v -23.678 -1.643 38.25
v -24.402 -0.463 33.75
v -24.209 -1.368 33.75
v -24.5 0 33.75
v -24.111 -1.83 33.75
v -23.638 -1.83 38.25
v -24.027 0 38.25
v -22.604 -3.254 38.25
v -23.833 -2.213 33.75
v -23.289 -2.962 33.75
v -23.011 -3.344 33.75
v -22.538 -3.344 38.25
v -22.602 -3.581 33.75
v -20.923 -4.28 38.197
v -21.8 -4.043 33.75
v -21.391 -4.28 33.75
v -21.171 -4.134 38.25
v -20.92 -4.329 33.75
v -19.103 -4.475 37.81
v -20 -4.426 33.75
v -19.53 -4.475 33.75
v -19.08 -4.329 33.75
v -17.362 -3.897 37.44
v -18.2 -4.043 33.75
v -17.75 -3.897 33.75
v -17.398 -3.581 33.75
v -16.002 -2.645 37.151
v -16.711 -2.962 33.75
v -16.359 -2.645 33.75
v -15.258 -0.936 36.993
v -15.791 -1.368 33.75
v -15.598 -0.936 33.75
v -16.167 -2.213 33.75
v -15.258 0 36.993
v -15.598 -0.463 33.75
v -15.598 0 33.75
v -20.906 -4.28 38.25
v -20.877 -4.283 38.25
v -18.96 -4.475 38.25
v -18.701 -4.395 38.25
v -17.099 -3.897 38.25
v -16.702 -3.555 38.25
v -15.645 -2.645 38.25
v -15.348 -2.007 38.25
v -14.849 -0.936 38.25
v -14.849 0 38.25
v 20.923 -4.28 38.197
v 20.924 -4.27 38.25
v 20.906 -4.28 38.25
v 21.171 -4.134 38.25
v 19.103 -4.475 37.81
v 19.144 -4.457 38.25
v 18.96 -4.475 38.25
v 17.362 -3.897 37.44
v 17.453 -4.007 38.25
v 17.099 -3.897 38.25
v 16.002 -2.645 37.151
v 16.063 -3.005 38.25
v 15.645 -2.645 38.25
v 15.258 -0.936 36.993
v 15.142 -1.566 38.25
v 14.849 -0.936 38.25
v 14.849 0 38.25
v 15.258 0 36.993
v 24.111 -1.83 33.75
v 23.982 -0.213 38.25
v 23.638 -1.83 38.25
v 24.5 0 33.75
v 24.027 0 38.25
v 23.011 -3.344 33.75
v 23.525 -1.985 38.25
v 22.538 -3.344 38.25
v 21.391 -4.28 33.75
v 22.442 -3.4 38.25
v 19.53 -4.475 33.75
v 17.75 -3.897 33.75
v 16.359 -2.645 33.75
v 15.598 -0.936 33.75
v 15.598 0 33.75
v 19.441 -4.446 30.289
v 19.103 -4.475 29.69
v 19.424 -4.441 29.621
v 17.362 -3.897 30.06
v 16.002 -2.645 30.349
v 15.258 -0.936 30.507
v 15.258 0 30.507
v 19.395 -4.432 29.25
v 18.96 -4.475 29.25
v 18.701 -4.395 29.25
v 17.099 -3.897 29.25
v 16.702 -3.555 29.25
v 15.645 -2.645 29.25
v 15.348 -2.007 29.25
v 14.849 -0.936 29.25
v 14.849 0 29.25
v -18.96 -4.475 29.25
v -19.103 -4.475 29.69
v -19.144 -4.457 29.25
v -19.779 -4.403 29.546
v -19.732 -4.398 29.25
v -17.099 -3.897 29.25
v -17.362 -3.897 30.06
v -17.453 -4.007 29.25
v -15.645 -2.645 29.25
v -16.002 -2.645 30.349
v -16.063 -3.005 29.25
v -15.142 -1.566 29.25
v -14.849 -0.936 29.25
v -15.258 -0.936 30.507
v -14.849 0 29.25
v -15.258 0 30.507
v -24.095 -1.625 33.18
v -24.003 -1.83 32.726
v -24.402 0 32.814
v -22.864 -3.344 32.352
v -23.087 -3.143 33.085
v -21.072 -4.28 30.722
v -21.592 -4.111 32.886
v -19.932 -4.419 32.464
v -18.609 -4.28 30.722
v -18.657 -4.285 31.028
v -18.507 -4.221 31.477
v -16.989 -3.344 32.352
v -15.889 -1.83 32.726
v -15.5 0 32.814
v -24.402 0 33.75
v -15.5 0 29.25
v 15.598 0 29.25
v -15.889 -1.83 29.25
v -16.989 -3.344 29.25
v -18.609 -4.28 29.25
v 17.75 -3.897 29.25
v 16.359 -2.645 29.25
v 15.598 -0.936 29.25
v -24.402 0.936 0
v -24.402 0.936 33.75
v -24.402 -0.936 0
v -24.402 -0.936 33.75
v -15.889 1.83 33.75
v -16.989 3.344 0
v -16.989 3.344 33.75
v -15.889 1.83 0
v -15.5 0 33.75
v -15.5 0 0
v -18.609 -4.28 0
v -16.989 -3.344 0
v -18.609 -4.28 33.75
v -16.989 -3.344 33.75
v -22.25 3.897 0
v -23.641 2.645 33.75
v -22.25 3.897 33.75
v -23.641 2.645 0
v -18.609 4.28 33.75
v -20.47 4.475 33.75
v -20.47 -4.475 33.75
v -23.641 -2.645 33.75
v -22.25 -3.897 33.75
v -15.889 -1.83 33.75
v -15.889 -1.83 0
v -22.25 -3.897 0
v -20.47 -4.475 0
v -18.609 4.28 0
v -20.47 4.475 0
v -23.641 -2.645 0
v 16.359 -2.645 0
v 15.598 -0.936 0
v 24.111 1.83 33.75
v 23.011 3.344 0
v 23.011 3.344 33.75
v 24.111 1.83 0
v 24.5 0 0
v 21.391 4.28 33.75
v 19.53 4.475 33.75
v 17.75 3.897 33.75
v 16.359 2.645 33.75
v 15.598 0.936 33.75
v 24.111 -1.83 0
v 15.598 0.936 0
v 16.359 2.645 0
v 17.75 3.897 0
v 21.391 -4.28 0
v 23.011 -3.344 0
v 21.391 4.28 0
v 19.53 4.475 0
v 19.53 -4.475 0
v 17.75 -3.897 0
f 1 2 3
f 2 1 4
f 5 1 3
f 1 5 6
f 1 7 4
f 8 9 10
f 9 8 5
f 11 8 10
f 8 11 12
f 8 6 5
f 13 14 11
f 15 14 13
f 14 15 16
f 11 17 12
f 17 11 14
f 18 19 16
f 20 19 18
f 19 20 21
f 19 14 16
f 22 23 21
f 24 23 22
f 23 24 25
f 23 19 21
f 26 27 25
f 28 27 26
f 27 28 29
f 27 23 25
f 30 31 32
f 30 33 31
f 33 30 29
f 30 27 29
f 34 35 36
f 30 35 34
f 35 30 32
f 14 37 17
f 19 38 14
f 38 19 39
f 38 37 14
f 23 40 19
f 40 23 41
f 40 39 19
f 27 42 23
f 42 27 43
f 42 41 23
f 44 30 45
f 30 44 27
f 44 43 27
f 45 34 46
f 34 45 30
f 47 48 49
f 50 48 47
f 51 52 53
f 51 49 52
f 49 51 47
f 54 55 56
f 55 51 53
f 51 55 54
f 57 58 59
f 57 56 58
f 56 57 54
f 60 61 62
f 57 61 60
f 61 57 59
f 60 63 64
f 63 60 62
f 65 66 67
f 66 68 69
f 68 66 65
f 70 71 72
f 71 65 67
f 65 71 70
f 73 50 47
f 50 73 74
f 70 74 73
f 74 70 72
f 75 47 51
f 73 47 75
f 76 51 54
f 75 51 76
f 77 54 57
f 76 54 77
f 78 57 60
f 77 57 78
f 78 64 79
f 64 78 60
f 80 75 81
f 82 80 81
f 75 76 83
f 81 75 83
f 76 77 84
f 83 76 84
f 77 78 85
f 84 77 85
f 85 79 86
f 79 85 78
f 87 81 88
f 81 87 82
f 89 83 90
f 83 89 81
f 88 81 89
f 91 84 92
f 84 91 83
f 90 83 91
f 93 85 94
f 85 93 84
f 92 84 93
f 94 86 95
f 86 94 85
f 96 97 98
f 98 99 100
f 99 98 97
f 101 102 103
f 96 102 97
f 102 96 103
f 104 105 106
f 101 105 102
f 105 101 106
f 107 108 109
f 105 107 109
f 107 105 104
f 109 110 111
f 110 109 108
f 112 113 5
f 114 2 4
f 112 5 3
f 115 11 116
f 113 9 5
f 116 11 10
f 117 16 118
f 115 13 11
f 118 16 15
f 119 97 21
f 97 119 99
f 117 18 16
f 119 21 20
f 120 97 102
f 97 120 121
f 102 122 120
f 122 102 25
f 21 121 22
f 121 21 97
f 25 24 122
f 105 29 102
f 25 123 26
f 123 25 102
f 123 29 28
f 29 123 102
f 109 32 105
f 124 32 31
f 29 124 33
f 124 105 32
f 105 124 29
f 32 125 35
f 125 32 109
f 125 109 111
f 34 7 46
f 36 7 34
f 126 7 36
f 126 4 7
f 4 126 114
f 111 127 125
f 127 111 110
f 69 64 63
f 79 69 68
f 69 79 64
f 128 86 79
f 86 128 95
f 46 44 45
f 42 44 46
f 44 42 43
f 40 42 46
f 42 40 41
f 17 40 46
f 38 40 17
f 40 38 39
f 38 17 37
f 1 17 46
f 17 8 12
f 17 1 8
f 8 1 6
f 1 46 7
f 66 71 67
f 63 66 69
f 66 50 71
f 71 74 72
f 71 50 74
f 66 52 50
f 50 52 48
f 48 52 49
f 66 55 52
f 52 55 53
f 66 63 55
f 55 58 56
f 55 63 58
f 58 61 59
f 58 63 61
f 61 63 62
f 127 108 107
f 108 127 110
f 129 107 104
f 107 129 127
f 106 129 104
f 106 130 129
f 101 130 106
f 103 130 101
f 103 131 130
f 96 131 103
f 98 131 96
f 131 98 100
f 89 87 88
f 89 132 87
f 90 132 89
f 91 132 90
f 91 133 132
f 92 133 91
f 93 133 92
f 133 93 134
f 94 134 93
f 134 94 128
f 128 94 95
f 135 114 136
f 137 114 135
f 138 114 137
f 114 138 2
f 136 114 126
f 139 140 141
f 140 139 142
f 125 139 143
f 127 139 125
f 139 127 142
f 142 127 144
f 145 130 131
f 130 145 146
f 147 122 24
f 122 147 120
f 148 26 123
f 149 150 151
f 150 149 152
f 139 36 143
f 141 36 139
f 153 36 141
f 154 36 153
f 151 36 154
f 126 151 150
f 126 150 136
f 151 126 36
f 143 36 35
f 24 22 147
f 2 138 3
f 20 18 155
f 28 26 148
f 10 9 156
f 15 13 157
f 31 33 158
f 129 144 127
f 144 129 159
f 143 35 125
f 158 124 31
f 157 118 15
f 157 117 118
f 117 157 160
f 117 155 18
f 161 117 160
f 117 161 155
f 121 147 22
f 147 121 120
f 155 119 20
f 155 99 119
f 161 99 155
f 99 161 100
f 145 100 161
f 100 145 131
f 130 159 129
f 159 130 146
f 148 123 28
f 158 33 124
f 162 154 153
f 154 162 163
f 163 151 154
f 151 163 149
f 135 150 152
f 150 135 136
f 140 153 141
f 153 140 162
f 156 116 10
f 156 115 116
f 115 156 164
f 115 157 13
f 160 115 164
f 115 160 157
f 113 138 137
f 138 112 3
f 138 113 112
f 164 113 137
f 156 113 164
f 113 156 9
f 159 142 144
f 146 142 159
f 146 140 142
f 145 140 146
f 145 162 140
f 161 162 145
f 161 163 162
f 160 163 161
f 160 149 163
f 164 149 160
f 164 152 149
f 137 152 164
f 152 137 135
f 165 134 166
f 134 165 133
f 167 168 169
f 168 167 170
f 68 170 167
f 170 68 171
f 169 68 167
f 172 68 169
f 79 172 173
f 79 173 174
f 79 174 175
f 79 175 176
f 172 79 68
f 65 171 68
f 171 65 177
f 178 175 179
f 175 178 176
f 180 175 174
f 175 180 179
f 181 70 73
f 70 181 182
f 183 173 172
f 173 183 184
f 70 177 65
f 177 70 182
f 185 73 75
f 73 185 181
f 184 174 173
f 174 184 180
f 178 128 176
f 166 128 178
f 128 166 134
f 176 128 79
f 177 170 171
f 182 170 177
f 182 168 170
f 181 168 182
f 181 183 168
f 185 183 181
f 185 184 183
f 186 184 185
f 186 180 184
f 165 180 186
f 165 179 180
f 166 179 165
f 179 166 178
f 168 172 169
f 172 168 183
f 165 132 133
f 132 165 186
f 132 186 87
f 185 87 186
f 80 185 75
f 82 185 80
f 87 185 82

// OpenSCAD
/* doodle-meta {"version":1,"parameters":{"bend_radius":{"label":"Bend Radius","description":"Radius of the semi-circular bend","unit":"mm","feature":"bend_radius"},"leg_length":{"label":"Leg Length","description":"Length of the straight vertical legs","unit":"mm","feature":"leg_length"},"rod_diameter":{"label":"Rod Diameter","description":"Diameter of the circular cross-section","unit":"mm","feature":"rod_diameter"}},"features":{"bend_radius":{"kind":"dimension","axis":"x","label":"Bend Radius"},"leg_length":{"kind":"dimension","axis":"z","label":"Leg Length"},"rod_diameter":{"kind":"dimension","axis":"y","label":"Rod Diameter"}}} */

// Parameters
bend_radius = 20.0;
leg_length = 33.75;
rod_diameter = 9;

// Derived constants
rod_radius = rod_diameter / 2;

// Helper module for Torus
// Creates a torus centered at origin, axis along Z by default.
// We will rotate it to align axis with Y.
module torus(major_radius, minor_radius) {
    rotate_extrude(convexity=10)
        translate([major_radius, 0, 0])
            circle(r=minor_radius);
}

// Main module
module handle_body() {
    // 1. Left Leg
    // Vertical cylinder at X = -bend_radius
    // Extends from Z=0 to Z=leg_length
    translate([-bend_radius, 0, leg_length/2])
        cylinder(h=leg_length, r=rod_radius, center=true);

    // 2. Right Leg
    // Vertical cylinder at X = +bend_radius
    // Extends from Z=0 to Z=leg_length
    translate([bend_radius, 0, leg_length/2])
        cylinder(h=leg_length, r=rod_radius, center=true);

    // 3. Semi-circular Bend
    // Centered at (0, 0, leg_length)
    // The torus ring lies in the XZ plane, so its axis is along Y.
    // Default torus axis is Z. Rotate 90 deg around X to make axis Y.
    translate([0, 0, leg_length])
        rotate([90, 0, 0])
            intersection() {
                // Full torus
                torus(major_radius=bend_radius, minor_radius=rod_radius);
                
                // Keep only the upper half (Z > 0 in local frame, which is Z > leg_length in global)
                // The torus is centered at local (0,0,0).
                // We want to keep the part where local Z > 0.
                // Create a cube that covers Z > 0.
                // Dimensions: Large enough to cover the torus.
                // X range: -R-r to R+r. Y range: -r to r. Z range: 0 to R+r.
                translate([0, 0, (bend_radius + rod_radius)/2])
                    cube([2*(bend_radius + rod_radius), 2*rod_radius, bend_radius + rod_radius], center=true);
            }
}

// Final instantiation
handle_body();
